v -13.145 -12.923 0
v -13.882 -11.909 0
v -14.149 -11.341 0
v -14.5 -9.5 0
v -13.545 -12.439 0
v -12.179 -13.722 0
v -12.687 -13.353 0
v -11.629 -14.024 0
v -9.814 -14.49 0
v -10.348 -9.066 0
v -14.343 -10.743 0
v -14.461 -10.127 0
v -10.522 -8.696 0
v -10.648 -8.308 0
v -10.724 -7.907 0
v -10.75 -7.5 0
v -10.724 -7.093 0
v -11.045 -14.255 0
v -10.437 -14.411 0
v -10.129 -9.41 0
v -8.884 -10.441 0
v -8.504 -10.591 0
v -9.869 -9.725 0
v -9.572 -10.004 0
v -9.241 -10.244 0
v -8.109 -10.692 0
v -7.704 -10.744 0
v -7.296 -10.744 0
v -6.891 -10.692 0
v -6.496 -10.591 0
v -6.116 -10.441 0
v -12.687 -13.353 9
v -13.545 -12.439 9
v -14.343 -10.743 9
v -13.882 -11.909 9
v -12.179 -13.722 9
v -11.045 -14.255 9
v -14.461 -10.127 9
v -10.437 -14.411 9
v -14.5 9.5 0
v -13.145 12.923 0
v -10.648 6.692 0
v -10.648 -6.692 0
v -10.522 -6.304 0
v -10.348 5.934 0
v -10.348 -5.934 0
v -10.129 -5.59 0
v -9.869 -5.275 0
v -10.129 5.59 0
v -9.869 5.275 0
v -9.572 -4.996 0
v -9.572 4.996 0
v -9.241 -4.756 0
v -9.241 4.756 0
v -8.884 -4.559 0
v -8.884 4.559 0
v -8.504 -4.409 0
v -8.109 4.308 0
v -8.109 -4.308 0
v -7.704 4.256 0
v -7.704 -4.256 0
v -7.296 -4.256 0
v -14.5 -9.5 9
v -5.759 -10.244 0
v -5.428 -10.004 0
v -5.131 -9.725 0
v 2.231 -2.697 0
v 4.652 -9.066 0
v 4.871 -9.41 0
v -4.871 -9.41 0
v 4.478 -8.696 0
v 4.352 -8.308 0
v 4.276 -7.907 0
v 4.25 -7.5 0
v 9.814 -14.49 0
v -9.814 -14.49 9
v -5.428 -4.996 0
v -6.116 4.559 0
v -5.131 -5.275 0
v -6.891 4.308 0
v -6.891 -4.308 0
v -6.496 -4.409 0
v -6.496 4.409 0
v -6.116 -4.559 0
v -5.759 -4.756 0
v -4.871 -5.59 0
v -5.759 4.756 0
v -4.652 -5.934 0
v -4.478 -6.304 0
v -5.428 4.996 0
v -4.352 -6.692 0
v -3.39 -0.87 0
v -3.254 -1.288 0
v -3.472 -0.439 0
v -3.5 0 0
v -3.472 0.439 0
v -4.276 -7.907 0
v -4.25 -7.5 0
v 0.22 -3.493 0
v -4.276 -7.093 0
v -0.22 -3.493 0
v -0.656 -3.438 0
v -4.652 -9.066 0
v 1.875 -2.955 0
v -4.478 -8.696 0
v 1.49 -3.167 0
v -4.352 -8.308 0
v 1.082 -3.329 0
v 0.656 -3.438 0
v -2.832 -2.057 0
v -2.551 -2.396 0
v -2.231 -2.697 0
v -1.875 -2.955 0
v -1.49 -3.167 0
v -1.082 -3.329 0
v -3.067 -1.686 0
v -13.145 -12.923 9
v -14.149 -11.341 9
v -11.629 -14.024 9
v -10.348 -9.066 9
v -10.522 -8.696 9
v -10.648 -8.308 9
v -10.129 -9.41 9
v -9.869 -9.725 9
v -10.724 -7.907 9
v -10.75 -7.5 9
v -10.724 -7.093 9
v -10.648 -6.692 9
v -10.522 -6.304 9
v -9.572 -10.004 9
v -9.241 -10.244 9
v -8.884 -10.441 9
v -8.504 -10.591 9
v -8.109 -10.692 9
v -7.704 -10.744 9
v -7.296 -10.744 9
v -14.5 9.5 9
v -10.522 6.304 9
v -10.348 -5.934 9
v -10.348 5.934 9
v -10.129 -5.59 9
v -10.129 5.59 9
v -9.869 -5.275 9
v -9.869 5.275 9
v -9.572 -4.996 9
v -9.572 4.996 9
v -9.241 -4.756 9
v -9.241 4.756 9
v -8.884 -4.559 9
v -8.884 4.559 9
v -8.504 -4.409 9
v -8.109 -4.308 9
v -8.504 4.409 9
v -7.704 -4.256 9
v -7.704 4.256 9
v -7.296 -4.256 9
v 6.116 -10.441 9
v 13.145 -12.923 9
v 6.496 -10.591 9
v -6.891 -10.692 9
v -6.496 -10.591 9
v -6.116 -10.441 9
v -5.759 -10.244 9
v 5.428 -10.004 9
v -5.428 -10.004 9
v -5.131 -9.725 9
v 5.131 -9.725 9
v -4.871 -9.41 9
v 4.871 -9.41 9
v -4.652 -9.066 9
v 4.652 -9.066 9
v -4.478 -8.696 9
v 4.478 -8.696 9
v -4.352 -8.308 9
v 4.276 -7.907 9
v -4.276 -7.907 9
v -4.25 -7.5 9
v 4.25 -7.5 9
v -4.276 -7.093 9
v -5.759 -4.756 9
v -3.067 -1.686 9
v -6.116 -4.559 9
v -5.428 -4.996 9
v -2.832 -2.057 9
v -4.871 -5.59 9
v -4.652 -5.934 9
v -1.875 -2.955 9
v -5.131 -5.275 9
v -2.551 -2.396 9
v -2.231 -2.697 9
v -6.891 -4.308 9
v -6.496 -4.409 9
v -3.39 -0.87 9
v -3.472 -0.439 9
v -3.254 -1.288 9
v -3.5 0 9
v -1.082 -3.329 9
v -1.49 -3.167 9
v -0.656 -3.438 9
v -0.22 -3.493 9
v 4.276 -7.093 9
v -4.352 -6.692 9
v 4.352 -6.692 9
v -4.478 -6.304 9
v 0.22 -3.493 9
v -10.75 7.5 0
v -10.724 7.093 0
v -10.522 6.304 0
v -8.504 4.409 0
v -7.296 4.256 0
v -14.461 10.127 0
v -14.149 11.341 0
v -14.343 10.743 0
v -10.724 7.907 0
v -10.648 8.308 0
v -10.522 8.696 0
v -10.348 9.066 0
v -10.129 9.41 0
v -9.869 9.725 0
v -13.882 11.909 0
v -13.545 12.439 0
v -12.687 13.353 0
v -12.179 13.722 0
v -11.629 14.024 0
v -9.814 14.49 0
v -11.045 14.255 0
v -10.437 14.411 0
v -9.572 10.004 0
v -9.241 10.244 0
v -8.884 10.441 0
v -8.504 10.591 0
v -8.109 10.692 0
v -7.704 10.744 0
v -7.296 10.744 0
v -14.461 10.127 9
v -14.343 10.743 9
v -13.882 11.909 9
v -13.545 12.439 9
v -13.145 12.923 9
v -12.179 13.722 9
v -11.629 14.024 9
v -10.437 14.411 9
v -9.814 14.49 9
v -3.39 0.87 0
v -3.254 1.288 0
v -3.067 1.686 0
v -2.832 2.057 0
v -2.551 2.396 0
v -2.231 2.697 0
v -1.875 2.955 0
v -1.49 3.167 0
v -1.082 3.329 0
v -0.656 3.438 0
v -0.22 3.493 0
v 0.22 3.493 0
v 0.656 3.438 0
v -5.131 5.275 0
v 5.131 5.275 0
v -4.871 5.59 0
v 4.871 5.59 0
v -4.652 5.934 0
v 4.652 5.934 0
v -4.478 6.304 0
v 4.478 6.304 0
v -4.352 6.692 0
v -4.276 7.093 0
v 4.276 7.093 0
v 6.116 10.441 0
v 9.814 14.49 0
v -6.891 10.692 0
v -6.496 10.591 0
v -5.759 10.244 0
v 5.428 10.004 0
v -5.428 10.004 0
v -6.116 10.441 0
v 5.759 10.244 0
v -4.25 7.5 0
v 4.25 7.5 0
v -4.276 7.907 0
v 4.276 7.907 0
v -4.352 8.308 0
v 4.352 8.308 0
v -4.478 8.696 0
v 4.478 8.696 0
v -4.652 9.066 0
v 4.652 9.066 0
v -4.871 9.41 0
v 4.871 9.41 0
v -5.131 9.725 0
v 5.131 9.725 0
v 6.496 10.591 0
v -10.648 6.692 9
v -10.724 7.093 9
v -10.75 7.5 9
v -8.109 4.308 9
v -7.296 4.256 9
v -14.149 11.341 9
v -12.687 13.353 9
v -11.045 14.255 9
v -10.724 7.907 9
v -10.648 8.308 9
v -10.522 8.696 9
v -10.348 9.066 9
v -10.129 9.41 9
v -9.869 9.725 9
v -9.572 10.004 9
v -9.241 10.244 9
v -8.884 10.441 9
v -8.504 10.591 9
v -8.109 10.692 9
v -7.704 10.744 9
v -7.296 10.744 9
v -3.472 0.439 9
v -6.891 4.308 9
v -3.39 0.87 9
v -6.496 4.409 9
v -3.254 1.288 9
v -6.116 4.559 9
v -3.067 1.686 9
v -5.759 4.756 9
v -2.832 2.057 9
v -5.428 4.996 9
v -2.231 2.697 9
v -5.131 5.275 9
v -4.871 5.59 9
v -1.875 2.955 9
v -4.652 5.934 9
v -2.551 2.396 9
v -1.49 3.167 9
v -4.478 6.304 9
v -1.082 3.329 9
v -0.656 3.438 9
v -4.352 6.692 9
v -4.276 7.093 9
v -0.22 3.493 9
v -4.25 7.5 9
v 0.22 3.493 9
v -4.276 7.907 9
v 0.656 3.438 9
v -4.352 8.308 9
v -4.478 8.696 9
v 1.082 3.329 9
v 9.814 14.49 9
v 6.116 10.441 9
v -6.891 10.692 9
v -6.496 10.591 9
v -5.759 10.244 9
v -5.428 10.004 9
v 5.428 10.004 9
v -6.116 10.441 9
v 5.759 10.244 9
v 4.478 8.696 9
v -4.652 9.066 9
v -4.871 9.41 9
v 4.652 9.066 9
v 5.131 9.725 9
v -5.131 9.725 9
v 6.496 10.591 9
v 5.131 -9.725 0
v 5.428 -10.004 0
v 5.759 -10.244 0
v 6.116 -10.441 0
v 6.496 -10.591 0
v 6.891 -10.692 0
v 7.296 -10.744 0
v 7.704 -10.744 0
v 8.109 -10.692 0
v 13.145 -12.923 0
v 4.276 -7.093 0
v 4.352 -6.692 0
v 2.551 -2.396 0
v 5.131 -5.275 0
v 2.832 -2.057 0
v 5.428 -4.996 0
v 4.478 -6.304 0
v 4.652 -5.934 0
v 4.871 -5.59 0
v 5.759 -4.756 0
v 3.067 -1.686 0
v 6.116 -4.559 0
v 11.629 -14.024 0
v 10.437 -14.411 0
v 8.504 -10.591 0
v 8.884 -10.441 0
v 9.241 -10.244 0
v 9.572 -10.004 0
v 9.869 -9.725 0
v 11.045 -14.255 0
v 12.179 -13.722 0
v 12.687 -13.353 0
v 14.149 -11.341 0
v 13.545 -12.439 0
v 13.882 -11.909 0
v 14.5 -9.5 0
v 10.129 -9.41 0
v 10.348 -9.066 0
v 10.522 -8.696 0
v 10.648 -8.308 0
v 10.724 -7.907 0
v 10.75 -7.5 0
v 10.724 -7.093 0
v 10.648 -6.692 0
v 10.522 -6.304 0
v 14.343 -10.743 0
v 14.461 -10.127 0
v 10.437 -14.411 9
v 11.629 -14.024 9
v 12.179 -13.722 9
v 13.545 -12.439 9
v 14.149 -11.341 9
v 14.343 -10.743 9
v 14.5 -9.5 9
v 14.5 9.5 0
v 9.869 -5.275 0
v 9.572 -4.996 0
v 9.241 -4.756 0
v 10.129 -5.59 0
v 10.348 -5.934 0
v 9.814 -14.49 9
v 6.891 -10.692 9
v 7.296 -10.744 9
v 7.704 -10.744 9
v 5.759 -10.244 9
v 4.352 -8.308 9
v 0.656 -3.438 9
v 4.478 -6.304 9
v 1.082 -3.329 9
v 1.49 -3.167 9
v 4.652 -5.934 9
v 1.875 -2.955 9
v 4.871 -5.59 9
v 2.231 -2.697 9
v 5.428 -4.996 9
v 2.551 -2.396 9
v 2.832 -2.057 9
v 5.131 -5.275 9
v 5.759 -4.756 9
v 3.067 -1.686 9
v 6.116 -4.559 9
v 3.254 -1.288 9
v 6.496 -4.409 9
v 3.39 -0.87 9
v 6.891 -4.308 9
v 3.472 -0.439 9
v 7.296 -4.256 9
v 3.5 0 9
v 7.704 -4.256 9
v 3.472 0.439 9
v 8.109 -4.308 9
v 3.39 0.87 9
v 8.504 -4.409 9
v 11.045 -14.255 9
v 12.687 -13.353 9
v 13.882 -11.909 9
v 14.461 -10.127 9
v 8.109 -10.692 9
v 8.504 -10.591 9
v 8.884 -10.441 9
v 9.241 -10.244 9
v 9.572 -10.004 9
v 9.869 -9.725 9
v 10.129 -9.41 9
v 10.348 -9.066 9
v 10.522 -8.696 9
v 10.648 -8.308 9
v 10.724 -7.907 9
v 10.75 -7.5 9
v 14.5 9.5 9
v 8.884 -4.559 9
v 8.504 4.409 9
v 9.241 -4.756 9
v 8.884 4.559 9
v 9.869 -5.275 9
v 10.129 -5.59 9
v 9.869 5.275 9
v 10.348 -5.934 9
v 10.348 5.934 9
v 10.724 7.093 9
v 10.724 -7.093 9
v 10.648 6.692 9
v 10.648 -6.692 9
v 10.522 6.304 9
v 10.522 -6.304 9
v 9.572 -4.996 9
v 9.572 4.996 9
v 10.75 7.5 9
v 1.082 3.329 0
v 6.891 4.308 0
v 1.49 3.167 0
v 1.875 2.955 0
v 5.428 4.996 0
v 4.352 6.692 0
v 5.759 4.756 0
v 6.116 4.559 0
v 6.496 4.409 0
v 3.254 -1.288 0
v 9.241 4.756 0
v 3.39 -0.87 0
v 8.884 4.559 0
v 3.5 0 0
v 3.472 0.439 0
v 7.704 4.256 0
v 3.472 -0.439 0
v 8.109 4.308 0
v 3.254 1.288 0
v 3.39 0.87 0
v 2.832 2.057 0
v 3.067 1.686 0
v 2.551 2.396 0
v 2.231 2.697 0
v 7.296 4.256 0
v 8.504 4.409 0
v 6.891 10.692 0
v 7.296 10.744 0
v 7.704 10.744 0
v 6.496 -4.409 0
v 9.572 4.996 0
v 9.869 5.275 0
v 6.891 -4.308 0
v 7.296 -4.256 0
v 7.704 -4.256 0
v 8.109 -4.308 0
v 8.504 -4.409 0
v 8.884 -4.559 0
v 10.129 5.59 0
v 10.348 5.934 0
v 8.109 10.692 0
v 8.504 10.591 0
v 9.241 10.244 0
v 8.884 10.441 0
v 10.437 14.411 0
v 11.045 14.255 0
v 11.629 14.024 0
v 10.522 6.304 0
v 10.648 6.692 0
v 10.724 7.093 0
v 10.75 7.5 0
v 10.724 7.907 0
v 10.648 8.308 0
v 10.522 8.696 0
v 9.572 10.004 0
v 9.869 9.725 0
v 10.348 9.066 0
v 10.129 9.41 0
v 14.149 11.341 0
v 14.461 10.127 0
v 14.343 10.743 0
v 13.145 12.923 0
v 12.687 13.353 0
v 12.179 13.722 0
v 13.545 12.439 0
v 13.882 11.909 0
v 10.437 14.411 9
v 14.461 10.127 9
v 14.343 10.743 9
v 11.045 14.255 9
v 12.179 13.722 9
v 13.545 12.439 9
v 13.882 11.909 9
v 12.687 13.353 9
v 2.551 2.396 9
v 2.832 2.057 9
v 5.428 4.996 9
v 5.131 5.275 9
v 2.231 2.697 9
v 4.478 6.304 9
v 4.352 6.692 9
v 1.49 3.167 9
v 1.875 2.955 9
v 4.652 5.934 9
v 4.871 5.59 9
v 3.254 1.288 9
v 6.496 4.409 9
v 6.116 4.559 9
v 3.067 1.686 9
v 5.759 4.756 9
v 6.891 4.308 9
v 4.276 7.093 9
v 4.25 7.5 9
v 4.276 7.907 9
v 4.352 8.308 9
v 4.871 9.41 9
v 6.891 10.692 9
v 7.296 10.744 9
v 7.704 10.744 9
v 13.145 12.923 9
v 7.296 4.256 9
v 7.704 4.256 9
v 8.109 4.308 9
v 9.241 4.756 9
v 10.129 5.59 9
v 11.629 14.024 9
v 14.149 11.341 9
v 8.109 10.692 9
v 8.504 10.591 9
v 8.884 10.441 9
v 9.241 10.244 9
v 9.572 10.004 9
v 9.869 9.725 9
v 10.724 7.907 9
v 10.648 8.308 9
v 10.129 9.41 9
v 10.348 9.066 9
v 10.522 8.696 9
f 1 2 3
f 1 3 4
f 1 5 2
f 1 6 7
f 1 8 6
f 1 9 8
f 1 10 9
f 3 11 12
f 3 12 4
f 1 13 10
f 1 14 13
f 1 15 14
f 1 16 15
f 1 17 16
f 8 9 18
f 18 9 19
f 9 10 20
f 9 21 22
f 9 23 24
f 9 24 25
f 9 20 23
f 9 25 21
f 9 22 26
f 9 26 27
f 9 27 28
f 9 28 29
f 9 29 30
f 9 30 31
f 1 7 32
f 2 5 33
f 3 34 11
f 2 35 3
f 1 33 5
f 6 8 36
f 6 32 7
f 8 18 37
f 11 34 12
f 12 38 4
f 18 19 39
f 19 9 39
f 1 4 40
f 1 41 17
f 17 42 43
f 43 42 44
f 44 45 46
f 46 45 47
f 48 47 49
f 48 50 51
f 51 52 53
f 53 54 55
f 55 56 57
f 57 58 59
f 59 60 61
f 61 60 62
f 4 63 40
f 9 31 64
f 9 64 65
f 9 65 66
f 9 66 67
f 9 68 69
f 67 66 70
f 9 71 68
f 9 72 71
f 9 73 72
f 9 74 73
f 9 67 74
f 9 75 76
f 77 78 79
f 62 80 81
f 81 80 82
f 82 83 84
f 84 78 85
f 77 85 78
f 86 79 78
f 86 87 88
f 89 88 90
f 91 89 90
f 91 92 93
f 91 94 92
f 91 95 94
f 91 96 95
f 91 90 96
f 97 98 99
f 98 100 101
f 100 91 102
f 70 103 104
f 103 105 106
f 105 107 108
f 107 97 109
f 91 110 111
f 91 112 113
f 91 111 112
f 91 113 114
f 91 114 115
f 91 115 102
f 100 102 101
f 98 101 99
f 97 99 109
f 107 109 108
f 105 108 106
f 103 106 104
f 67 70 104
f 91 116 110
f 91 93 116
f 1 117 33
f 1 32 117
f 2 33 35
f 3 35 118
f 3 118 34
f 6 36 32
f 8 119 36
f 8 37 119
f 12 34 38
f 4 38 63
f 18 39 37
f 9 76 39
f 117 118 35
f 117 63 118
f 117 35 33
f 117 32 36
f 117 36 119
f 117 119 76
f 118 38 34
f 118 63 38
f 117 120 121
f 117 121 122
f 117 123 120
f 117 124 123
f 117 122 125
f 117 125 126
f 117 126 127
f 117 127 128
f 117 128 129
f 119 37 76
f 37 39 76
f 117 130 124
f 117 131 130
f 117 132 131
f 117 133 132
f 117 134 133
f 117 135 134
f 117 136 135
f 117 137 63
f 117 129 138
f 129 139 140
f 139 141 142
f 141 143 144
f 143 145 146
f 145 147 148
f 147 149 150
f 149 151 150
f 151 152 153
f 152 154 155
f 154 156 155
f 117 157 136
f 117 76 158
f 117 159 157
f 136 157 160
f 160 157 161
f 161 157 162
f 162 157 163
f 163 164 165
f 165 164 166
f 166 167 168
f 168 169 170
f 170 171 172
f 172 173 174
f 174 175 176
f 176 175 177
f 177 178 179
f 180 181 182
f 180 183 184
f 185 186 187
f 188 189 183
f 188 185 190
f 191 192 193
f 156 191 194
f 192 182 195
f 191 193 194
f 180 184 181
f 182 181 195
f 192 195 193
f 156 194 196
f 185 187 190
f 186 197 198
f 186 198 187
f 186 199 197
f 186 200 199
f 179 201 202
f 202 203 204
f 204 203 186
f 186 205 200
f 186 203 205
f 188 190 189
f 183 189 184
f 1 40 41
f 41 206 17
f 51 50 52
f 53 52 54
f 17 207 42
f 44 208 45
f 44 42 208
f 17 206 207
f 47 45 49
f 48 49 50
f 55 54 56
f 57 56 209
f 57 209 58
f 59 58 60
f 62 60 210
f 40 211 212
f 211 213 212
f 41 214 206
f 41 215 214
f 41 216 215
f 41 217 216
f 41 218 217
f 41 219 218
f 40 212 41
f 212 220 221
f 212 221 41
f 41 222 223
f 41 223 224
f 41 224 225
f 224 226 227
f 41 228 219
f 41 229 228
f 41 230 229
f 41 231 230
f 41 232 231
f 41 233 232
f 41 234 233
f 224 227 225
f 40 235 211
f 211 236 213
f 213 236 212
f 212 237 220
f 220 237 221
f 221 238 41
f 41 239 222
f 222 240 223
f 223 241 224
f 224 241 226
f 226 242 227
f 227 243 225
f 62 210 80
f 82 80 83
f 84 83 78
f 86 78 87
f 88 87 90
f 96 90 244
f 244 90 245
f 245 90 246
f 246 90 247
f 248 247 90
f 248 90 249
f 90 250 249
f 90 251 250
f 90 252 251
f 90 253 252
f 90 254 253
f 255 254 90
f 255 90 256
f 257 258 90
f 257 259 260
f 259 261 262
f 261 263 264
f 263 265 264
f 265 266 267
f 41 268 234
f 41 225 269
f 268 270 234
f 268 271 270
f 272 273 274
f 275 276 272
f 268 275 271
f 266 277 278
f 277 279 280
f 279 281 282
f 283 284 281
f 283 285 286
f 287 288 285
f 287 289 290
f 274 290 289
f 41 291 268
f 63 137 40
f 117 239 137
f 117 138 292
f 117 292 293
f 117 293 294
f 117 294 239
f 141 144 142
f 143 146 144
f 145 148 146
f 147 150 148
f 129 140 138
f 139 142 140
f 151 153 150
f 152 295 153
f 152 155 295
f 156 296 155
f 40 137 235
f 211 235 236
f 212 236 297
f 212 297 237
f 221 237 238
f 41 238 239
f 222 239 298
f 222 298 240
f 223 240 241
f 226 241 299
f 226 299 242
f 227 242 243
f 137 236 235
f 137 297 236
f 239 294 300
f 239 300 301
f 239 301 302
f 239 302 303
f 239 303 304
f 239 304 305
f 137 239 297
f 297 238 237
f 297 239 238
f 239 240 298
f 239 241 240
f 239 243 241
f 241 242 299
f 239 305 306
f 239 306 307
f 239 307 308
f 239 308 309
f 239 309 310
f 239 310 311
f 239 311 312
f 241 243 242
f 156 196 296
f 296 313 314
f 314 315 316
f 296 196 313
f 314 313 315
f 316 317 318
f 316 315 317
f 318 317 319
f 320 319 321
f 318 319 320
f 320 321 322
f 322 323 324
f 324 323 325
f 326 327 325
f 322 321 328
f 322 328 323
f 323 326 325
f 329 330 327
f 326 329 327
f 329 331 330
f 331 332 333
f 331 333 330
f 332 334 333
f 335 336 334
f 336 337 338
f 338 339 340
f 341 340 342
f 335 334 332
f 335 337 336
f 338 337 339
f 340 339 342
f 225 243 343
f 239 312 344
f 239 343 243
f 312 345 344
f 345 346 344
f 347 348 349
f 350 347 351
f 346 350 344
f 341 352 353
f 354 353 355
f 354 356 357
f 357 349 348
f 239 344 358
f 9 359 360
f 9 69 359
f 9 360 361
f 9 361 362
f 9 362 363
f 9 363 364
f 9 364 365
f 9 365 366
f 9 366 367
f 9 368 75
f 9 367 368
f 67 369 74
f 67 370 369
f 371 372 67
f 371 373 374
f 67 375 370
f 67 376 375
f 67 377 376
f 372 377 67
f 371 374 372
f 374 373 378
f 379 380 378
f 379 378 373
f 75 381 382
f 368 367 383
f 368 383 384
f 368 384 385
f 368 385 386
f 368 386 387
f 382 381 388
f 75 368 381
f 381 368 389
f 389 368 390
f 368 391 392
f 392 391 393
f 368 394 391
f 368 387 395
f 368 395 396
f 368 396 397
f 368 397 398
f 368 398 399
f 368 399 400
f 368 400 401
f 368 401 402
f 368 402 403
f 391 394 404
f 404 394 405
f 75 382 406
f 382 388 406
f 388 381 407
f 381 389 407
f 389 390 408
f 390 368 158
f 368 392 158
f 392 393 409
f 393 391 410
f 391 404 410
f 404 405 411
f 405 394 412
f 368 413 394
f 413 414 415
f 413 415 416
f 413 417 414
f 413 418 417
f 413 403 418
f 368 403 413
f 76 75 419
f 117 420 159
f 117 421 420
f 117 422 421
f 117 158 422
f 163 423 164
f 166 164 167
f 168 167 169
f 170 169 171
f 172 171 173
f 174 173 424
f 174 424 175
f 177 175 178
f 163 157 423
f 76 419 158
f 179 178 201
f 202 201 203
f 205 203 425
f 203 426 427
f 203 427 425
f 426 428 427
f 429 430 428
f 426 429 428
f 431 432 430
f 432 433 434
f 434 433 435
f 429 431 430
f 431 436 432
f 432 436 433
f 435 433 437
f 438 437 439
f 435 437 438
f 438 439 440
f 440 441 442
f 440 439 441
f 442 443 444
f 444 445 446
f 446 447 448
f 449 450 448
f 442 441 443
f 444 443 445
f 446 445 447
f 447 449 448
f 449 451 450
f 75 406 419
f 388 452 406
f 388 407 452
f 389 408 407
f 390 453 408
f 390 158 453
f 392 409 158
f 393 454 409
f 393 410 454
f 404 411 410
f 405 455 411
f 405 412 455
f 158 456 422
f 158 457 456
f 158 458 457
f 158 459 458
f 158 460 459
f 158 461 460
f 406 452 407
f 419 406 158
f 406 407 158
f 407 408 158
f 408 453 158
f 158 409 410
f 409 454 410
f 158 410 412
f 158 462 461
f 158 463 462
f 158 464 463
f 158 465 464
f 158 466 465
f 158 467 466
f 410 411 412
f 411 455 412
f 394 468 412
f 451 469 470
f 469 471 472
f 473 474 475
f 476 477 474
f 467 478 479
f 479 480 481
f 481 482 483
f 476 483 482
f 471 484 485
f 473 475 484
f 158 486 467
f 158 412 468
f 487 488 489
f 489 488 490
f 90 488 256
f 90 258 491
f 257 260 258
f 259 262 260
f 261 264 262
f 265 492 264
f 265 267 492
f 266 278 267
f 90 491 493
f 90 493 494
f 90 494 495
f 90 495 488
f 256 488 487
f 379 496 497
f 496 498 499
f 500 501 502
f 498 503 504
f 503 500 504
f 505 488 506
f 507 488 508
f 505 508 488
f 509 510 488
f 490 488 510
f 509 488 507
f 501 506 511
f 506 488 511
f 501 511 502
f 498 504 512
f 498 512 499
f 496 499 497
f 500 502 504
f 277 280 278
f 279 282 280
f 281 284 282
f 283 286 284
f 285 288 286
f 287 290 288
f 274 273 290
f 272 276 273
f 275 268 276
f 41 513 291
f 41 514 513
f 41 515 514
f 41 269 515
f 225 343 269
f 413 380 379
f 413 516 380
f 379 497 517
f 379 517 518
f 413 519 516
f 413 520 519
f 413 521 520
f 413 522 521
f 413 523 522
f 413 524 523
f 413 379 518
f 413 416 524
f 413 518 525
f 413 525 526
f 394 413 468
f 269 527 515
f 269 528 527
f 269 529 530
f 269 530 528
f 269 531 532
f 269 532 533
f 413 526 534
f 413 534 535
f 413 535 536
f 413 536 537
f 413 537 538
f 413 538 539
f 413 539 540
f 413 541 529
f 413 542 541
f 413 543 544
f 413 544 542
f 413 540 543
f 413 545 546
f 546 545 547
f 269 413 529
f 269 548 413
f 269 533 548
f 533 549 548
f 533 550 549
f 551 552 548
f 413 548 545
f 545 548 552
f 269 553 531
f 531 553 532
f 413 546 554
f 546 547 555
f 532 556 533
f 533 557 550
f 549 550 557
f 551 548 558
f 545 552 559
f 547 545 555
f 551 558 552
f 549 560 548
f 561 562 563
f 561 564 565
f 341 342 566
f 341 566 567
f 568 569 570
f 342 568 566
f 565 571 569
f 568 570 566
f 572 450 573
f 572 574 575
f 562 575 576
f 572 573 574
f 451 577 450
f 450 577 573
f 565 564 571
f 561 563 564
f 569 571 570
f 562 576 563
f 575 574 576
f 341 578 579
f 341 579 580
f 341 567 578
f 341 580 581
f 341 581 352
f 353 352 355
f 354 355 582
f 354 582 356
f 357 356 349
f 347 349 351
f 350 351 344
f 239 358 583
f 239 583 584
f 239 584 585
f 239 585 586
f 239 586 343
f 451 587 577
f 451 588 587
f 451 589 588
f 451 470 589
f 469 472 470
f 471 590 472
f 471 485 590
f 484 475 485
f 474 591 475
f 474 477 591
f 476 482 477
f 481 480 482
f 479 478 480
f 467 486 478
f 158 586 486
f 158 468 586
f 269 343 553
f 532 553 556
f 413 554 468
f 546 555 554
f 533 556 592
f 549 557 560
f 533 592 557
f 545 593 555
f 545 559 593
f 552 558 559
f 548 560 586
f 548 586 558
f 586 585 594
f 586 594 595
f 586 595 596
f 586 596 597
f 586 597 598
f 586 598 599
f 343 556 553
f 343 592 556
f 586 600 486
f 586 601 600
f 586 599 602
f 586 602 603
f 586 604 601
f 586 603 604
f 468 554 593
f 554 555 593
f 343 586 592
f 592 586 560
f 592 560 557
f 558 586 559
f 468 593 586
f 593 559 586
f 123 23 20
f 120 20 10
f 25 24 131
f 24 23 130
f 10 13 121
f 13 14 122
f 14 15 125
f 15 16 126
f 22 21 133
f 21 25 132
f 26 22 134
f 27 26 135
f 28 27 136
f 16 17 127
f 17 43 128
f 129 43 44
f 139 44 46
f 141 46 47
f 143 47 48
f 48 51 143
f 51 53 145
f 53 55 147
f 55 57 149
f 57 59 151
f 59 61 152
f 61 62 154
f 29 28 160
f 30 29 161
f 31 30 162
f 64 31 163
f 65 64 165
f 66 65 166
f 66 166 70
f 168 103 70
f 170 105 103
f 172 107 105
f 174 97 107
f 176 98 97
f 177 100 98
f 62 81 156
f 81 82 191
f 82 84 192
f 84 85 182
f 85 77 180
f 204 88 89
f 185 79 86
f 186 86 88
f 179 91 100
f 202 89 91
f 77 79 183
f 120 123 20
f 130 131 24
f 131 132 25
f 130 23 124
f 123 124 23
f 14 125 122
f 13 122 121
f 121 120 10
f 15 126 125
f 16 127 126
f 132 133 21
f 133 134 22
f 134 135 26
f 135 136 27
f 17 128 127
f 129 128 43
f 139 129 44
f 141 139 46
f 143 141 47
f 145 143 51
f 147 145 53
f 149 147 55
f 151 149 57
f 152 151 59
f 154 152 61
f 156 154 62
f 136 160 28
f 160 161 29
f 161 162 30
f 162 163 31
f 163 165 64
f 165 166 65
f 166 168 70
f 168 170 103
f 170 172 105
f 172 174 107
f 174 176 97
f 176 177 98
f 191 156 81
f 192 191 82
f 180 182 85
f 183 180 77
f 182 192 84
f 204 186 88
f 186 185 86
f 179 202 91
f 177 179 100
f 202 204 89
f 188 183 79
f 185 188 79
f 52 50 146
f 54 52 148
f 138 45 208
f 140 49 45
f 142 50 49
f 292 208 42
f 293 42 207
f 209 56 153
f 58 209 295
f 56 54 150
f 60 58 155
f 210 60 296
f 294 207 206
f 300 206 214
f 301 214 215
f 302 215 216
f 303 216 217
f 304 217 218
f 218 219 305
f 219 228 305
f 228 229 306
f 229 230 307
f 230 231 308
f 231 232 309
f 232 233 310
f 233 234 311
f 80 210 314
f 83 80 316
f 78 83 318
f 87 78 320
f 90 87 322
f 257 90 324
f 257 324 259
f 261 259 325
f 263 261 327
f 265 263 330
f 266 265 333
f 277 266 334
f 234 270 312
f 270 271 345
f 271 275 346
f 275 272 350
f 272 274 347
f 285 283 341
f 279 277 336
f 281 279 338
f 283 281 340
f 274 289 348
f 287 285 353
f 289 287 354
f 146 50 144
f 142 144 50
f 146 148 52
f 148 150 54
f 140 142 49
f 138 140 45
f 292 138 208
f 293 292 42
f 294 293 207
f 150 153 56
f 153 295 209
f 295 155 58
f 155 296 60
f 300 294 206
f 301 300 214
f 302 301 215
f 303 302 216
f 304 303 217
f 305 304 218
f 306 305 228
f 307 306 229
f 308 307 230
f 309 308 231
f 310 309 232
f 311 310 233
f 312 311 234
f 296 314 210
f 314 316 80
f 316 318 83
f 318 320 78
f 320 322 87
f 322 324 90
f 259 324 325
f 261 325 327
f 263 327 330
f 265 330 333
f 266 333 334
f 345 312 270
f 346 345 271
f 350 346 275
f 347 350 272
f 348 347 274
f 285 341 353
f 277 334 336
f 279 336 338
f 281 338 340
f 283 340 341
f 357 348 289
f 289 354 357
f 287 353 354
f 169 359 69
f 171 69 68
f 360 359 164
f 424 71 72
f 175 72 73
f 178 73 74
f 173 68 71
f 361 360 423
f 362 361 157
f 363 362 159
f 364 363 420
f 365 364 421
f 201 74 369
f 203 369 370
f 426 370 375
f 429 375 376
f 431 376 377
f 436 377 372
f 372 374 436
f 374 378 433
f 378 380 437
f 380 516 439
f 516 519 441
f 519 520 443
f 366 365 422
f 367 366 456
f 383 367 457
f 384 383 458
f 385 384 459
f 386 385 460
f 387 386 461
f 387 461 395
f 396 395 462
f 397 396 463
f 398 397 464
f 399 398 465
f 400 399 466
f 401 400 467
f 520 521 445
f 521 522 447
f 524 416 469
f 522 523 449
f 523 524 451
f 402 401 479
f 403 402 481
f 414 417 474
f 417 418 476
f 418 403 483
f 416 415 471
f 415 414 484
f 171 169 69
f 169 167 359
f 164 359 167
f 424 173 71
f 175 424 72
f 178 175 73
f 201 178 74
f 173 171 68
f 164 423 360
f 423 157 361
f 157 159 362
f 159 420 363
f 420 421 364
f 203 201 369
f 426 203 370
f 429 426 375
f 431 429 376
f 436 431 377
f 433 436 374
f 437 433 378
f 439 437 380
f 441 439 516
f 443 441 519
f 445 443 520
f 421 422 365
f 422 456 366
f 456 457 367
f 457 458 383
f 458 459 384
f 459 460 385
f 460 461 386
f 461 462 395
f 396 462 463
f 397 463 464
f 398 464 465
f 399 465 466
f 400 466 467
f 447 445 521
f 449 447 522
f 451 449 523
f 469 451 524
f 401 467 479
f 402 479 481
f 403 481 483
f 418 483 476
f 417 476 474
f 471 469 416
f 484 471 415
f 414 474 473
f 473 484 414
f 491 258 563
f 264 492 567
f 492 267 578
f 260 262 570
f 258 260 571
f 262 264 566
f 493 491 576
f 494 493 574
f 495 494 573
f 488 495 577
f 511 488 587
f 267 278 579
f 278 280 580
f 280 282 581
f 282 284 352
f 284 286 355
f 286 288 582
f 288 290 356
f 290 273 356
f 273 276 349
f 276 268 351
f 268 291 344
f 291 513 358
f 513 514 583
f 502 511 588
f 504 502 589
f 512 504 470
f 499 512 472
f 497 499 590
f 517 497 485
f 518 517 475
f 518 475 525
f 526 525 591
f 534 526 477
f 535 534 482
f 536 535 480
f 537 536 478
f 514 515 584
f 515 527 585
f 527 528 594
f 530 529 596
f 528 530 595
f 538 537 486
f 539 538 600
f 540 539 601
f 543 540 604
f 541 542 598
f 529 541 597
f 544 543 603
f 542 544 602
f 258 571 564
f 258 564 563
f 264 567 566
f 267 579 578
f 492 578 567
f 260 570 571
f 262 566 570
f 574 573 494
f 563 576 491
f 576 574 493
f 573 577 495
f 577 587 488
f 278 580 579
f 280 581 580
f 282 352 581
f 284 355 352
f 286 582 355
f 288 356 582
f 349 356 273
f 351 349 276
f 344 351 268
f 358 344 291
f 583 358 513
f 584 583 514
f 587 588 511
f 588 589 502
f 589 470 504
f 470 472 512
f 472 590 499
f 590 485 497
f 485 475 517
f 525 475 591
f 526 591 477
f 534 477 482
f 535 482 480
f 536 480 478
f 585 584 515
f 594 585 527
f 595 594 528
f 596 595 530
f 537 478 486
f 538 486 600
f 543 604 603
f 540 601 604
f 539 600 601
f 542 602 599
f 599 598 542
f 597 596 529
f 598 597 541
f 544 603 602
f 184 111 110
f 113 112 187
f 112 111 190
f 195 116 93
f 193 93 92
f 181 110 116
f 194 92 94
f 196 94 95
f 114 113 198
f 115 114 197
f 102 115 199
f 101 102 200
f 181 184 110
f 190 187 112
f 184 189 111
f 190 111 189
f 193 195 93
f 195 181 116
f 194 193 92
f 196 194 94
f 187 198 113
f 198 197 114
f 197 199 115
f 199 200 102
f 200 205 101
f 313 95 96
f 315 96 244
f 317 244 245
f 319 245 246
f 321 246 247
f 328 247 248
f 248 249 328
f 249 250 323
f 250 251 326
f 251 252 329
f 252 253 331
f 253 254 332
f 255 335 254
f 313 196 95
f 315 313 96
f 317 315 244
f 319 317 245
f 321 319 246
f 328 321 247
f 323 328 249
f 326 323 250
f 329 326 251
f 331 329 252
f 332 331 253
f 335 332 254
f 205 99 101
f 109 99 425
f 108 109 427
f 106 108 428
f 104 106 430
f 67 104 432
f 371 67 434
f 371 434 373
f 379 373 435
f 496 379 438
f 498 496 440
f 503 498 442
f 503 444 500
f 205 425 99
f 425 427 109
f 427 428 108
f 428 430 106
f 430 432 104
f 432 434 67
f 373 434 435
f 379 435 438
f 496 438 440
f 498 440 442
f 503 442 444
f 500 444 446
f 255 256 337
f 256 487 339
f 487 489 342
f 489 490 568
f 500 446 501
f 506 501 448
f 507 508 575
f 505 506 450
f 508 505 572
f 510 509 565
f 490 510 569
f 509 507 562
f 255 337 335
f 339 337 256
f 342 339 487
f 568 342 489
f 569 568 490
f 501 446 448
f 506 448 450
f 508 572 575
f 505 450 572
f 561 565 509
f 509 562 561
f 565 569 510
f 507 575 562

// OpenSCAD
$fn = 50;

difference() {
	union() {
		hull() {
			translate(v = [-9.5, 9.5, 0]) {
				cylinder(h = 9, r = 5);
			}
			translate(v = [9.5, 9.5, 0]) {
				cylinder(h = 9, r = 5);
			}
			translate(v = [-9.5, -9.5, 0]) {
				cylinder(h = 9, r = 5);
			}
			translate(v = [9.5, -9.5, 0]) {
				cylinder(h = 9, r = 5);
			}
		}
	}
	union() {
		translate(v = [-7.5, -7.5, 0]) {
			cylinder(h = 9, r = 3.25);
		}
		translate(v = [-7.5, 7.5, 0]) {
			cylinder(h = 9, r = 3.25);
		}
		translate(v = [7.5, -7.5, 0]) {
			cylinder(h = 9, r = 3.25);
		}
		translate(v = [7.5, 7.5, 0]) {
			cylinder(h = 9, r = 3.25);
		}
		cylinder(h = 9, r = 3.5);
	}
}
